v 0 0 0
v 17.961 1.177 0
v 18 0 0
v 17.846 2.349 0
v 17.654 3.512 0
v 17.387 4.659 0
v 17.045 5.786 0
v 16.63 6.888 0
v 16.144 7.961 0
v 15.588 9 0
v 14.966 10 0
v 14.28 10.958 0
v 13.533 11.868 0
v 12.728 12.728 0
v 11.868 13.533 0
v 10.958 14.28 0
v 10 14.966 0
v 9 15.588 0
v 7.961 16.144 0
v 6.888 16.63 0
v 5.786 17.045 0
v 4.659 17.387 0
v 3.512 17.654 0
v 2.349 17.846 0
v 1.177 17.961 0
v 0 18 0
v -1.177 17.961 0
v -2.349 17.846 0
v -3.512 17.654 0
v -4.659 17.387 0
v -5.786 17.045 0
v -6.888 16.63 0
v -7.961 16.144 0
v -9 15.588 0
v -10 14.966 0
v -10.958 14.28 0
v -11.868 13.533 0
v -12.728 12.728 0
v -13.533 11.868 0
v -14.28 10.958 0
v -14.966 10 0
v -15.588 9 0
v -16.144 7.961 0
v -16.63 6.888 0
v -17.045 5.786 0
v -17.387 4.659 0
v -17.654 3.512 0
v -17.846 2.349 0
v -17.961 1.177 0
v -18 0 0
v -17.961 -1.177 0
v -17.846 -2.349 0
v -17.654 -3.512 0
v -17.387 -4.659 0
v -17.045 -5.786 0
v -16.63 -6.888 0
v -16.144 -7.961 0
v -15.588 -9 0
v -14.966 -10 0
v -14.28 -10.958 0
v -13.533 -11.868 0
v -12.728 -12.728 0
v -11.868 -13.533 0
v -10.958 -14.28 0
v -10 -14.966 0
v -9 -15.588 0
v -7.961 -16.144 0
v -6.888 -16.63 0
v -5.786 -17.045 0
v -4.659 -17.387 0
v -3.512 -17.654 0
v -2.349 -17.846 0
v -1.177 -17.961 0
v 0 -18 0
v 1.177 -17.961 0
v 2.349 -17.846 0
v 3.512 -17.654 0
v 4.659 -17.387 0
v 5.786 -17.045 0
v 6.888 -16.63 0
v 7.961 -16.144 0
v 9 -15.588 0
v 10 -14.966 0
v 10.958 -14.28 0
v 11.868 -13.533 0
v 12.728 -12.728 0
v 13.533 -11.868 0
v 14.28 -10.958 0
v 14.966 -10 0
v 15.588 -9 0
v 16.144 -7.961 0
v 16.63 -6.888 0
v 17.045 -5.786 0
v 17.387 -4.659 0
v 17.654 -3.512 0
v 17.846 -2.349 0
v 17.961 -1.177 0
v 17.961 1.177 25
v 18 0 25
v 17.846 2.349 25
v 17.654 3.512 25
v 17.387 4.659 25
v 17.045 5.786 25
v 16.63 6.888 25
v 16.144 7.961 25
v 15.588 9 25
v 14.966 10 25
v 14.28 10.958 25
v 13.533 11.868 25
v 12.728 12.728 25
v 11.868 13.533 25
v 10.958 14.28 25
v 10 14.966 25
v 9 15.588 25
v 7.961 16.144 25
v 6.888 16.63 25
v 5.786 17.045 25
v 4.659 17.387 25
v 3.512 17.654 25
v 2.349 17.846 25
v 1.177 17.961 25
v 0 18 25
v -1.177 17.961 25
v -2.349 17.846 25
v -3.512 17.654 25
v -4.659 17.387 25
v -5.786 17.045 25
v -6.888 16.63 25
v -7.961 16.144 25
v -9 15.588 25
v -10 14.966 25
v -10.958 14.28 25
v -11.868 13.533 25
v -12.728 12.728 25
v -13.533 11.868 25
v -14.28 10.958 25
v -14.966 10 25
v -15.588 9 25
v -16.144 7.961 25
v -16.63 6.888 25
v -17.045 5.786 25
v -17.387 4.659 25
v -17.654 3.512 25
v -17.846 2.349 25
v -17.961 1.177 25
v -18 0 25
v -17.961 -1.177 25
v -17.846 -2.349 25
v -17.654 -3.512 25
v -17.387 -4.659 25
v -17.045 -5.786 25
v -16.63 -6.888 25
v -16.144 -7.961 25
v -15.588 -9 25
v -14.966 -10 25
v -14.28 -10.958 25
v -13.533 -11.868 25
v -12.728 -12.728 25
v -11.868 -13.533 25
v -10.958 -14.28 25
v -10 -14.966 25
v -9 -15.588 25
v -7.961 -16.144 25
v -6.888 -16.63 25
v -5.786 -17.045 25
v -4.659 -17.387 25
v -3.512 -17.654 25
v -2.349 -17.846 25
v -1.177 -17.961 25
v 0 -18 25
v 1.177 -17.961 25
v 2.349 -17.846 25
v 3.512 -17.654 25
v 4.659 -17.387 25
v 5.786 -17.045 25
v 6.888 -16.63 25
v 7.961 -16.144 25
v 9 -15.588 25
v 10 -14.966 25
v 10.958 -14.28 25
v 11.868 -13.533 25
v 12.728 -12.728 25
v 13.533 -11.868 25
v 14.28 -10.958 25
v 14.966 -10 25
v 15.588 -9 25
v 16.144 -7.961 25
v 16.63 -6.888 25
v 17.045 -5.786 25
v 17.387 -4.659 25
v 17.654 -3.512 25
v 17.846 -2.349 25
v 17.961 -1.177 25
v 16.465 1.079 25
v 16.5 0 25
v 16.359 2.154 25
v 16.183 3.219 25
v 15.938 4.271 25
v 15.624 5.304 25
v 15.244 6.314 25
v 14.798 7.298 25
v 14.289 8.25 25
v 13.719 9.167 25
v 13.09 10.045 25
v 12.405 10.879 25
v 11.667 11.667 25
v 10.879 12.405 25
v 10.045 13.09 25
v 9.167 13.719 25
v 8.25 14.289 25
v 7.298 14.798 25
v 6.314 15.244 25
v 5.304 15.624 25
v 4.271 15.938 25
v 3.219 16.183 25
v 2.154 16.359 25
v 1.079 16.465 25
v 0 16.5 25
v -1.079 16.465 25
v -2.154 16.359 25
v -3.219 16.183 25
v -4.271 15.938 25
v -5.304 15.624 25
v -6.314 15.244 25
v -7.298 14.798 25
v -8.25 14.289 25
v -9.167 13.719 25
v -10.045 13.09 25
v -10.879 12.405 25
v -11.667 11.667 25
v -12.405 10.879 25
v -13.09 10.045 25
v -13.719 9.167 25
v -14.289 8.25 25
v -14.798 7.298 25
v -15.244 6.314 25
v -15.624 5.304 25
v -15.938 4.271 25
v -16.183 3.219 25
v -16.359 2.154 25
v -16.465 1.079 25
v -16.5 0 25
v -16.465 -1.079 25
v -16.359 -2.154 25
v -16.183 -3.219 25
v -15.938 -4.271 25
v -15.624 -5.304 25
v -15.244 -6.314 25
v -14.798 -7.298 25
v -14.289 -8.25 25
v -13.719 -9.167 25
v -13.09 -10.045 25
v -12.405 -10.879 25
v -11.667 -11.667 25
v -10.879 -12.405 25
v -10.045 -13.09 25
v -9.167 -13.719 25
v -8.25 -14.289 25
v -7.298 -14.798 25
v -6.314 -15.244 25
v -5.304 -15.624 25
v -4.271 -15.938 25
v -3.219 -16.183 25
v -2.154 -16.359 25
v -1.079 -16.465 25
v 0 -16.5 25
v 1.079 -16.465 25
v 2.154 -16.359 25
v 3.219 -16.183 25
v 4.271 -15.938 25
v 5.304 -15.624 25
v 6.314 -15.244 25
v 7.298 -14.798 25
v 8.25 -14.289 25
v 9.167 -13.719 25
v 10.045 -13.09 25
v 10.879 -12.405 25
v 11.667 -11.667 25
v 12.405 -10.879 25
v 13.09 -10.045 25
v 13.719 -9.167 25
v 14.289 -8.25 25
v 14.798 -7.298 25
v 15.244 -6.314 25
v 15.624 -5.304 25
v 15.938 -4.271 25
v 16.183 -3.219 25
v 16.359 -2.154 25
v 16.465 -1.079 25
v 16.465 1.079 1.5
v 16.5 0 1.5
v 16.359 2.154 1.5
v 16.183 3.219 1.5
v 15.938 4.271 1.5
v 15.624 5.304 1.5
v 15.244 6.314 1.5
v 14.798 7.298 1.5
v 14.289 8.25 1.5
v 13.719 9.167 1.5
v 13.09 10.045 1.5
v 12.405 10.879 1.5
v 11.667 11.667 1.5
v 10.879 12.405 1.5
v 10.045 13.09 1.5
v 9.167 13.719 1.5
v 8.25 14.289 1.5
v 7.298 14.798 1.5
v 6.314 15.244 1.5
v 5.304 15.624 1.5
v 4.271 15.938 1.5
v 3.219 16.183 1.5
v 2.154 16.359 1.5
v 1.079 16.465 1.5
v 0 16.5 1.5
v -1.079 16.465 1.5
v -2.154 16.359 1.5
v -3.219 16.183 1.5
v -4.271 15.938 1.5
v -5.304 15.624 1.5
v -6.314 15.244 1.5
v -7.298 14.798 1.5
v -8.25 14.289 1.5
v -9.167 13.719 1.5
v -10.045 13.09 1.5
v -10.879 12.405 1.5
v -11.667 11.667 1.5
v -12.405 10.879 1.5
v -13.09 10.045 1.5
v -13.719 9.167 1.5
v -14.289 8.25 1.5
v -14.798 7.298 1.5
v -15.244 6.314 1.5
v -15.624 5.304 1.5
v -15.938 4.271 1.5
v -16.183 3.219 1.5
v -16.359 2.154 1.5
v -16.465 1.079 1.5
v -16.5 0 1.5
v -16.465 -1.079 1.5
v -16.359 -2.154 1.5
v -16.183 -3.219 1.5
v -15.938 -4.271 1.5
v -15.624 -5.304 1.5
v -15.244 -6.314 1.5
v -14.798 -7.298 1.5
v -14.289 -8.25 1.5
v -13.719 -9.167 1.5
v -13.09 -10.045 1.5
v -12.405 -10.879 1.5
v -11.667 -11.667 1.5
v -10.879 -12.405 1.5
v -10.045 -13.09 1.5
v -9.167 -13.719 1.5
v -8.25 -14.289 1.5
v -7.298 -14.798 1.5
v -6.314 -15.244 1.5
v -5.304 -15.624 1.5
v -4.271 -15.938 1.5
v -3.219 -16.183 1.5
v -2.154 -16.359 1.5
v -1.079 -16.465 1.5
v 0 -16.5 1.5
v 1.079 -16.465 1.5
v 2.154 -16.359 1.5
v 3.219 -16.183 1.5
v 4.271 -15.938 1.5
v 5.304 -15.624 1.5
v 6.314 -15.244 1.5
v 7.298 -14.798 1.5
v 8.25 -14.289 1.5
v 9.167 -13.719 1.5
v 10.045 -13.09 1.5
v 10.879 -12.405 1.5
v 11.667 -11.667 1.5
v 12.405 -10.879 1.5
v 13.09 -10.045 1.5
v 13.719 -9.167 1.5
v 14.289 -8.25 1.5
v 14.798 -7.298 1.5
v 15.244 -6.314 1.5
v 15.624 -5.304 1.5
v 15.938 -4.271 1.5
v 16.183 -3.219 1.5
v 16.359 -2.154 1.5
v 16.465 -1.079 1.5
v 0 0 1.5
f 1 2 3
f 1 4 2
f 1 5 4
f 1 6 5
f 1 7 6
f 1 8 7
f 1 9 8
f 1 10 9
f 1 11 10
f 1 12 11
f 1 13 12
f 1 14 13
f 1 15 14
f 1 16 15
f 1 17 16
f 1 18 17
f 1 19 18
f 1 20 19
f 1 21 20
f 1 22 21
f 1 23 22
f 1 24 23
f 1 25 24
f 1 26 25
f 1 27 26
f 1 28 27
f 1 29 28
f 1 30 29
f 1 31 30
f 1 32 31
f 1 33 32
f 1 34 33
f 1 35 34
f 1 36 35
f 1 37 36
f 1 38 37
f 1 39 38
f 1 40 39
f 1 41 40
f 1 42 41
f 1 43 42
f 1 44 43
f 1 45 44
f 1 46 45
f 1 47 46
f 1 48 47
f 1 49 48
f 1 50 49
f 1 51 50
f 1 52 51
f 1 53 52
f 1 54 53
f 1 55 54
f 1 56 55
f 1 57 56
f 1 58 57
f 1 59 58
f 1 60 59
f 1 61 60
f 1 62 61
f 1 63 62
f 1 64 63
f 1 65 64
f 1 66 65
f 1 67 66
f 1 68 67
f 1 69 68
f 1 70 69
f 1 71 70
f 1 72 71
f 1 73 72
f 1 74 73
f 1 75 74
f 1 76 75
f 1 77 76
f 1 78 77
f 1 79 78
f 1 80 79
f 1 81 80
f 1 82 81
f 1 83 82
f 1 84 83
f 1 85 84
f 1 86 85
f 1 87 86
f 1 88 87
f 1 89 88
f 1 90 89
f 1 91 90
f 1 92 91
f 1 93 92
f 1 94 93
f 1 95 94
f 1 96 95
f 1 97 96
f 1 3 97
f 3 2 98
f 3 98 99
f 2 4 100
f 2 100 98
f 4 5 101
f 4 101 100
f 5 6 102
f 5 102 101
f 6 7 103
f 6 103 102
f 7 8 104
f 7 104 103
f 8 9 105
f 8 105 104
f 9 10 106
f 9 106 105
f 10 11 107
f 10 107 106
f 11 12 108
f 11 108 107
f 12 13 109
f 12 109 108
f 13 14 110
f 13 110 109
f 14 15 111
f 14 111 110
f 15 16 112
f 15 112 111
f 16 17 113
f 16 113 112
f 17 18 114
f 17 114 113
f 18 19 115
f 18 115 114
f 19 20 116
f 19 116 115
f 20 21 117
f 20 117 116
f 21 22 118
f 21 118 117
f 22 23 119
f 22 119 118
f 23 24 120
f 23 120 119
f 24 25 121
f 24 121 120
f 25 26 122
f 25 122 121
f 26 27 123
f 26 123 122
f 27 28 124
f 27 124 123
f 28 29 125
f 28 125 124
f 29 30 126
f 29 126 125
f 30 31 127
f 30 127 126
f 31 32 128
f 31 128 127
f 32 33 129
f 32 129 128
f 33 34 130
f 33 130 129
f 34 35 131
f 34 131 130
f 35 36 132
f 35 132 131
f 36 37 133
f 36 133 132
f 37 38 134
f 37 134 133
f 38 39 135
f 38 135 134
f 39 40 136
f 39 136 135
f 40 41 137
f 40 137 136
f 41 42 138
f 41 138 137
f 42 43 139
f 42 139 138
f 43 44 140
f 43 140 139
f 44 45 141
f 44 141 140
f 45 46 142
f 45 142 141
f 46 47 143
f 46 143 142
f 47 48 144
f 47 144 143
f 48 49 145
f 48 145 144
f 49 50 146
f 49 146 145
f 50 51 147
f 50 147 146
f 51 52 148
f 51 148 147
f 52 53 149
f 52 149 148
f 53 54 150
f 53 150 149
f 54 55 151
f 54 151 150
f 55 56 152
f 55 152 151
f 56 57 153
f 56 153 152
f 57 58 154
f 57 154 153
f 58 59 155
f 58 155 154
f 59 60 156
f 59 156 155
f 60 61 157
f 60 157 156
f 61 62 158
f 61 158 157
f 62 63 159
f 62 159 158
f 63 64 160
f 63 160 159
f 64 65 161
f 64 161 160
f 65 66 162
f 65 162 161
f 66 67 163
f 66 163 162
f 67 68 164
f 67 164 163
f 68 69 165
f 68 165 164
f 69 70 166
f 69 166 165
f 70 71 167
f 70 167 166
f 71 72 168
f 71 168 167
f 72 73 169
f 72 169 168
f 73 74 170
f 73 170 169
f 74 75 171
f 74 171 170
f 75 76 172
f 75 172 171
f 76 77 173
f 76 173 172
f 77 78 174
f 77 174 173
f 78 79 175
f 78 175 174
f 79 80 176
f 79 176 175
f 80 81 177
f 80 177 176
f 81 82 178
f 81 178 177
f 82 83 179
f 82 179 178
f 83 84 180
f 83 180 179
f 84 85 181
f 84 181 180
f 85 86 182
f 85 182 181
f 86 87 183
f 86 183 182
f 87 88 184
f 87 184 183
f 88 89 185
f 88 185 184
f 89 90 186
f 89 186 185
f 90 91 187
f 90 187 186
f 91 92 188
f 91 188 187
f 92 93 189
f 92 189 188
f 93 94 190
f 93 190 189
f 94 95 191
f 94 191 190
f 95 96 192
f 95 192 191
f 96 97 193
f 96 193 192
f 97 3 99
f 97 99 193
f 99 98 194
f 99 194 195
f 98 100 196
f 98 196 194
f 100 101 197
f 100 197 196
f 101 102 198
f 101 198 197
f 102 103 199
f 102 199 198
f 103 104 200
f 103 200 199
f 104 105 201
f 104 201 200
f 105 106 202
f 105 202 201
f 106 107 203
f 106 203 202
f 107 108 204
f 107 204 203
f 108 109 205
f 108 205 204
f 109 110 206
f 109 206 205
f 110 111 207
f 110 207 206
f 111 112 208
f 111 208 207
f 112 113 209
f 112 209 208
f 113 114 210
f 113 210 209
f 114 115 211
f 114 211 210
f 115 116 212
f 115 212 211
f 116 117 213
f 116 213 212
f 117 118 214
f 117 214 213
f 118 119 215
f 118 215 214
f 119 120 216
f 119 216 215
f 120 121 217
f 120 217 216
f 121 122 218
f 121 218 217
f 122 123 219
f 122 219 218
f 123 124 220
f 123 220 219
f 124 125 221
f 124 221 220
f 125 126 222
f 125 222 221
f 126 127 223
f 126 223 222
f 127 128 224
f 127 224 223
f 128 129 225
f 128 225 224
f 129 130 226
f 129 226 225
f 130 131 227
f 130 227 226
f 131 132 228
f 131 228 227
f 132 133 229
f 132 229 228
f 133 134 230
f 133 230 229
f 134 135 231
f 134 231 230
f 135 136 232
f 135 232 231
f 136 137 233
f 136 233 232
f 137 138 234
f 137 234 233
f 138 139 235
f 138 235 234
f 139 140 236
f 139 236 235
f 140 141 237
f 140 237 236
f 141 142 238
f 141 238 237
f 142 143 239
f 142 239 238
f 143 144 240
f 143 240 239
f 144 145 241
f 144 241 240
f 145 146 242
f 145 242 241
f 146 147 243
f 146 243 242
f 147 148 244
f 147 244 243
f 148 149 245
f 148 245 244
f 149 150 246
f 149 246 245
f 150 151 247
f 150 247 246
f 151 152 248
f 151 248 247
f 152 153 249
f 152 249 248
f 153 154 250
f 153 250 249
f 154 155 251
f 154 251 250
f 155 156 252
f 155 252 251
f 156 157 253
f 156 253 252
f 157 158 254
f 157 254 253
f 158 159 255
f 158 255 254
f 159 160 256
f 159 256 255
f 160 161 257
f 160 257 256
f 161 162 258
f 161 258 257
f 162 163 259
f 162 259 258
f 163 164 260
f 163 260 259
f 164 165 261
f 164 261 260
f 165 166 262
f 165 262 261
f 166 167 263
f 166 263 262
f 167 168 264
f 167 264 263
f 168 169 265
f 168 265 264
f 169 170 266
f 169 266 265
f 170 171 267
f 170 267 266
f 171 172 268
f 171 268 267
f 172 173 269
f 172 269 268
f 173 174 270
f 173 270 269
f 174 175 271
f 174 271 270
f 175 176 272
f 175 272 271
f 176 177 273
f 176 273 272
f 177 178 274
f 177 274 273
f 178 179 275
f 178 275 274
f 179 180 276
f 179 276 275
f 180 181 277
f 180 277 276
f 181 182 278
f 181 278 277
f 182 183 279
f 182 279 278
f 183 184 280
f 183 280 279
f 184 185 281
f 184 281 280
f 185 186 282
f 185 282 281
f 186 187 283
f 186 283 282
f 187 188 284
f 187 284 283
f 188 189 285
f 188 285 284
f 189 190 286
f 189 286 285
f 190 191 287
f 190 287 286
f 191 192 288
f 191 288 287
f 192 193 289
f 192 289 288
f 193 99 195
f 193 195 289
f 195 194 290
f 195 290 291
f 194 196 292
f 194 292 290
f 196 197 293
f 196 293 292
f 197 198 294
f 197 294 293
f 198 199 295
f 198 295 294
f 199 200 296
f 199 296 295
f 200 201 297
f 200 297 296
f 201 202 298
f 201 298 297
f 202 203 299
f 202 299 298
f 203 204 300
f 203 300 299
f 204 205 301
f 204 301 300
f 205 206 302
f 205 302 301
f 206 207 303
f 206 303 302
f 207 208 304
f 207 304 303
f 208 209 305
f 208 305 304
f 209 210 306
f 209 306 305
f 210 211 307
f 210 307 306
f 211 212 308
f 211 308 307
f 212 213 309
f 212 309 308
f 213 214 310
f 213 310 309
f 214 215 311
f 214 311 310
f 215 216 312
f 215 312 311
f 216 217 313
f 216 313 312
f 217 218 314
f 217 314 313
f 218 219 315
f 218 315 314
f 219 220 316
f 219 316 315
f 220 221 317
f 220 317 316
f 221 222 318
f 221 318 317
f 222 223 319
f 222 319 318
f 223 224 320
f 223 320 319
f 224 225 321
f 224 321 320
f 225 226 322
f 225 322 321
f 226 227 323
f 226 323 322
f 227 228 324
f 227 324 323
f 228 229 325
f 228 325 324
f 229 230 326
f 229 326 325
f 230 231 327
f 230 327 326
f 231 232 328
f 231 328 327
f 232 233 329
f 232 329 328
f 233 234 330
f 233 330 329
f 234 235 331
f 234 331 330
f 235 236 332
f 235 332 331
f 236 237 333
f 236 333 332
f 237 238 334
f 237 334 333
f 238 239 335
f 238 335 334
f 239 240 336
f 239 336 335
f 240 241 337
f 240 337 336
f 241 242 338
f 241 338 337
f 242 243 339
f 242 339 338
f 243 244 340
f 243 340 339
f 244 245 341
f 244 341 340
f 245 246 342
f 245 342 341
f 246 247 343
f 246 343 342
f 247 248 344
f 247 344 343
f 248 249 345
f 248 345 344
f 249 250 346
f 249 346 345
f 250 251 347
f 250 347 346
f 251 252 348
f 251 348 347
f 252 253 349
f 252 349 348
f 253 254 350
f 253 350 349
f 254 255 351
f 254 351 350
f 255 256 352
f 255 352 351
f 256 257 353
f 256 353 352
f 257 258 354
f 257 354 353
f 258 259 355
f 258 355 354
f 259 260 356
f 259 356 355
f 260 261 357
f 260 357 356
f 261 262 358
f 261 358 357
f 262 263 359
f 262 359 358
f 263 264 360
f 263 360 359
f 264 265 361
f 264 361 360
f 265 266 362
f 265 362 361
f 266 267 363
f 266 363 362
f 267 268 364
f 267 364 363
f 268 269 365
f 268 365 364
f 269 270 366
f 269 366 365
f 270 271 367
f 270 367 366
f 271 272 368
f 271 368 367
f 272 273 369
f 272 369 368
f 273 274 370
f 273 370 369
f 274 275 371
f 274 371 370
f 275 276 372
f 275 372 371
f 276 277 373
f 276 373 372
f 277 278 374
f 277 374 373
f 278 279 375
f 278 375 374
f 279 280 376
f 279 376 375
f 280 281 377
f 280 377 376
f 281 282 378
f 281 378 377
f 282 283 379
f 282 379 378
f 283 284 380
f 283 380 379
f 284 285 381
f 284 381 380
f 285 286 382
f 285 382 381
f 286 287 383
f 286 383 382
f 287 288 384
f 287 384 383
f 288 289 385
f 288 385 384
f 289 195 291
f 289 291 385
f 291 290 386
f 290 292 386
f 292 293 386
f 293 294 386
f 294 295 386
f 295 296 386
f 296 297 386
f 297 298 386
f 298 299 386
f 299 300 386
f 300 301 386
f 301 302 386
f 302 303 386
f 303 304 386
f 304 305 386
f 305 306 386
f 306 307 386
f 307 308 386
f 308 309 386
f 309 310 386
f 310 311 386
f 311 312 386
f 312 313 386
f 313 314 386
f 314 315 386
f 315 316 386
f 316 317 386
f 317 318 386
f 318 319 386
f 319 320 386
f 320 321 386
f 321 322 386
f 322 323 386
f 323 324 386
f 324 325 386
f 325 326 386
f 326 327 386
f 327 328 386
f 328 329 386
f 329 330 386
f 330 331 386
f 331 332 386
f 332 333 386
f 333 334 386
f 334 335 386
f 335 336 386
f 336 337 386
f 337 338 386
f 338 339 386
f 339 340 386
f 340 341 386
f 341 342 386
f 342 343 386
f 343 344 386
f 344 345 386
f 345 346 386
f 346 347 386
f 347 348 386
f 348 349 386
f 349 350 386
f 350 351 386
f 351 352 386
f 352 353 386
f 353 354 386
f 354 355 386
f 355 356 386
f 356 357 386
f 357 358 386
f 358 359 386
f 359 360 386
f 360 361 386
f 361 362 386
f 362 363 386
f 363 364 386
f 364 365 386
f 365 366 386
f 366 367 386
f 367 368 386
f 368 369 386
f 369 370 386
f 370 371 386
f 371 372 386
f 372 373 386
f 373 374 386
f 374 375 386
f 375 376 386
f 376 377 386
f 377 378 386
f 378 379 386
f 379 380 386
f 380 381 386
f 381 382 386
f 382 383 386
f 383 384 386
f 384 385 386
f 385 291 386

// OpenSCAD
// Original MechIntel educational model. CC0-1.0. Units: mm.
// Not a standardized or load-rated component.
$fn=96;
// Section points: [radius, height], mm. Edit to change the profile.
section=[[0, 0], [18, 0], [18, 25], [16.5, 25], [16.5, 1.5], [0, 1.5]];
rotate_extrude($fn=96) polygon(points=section);
